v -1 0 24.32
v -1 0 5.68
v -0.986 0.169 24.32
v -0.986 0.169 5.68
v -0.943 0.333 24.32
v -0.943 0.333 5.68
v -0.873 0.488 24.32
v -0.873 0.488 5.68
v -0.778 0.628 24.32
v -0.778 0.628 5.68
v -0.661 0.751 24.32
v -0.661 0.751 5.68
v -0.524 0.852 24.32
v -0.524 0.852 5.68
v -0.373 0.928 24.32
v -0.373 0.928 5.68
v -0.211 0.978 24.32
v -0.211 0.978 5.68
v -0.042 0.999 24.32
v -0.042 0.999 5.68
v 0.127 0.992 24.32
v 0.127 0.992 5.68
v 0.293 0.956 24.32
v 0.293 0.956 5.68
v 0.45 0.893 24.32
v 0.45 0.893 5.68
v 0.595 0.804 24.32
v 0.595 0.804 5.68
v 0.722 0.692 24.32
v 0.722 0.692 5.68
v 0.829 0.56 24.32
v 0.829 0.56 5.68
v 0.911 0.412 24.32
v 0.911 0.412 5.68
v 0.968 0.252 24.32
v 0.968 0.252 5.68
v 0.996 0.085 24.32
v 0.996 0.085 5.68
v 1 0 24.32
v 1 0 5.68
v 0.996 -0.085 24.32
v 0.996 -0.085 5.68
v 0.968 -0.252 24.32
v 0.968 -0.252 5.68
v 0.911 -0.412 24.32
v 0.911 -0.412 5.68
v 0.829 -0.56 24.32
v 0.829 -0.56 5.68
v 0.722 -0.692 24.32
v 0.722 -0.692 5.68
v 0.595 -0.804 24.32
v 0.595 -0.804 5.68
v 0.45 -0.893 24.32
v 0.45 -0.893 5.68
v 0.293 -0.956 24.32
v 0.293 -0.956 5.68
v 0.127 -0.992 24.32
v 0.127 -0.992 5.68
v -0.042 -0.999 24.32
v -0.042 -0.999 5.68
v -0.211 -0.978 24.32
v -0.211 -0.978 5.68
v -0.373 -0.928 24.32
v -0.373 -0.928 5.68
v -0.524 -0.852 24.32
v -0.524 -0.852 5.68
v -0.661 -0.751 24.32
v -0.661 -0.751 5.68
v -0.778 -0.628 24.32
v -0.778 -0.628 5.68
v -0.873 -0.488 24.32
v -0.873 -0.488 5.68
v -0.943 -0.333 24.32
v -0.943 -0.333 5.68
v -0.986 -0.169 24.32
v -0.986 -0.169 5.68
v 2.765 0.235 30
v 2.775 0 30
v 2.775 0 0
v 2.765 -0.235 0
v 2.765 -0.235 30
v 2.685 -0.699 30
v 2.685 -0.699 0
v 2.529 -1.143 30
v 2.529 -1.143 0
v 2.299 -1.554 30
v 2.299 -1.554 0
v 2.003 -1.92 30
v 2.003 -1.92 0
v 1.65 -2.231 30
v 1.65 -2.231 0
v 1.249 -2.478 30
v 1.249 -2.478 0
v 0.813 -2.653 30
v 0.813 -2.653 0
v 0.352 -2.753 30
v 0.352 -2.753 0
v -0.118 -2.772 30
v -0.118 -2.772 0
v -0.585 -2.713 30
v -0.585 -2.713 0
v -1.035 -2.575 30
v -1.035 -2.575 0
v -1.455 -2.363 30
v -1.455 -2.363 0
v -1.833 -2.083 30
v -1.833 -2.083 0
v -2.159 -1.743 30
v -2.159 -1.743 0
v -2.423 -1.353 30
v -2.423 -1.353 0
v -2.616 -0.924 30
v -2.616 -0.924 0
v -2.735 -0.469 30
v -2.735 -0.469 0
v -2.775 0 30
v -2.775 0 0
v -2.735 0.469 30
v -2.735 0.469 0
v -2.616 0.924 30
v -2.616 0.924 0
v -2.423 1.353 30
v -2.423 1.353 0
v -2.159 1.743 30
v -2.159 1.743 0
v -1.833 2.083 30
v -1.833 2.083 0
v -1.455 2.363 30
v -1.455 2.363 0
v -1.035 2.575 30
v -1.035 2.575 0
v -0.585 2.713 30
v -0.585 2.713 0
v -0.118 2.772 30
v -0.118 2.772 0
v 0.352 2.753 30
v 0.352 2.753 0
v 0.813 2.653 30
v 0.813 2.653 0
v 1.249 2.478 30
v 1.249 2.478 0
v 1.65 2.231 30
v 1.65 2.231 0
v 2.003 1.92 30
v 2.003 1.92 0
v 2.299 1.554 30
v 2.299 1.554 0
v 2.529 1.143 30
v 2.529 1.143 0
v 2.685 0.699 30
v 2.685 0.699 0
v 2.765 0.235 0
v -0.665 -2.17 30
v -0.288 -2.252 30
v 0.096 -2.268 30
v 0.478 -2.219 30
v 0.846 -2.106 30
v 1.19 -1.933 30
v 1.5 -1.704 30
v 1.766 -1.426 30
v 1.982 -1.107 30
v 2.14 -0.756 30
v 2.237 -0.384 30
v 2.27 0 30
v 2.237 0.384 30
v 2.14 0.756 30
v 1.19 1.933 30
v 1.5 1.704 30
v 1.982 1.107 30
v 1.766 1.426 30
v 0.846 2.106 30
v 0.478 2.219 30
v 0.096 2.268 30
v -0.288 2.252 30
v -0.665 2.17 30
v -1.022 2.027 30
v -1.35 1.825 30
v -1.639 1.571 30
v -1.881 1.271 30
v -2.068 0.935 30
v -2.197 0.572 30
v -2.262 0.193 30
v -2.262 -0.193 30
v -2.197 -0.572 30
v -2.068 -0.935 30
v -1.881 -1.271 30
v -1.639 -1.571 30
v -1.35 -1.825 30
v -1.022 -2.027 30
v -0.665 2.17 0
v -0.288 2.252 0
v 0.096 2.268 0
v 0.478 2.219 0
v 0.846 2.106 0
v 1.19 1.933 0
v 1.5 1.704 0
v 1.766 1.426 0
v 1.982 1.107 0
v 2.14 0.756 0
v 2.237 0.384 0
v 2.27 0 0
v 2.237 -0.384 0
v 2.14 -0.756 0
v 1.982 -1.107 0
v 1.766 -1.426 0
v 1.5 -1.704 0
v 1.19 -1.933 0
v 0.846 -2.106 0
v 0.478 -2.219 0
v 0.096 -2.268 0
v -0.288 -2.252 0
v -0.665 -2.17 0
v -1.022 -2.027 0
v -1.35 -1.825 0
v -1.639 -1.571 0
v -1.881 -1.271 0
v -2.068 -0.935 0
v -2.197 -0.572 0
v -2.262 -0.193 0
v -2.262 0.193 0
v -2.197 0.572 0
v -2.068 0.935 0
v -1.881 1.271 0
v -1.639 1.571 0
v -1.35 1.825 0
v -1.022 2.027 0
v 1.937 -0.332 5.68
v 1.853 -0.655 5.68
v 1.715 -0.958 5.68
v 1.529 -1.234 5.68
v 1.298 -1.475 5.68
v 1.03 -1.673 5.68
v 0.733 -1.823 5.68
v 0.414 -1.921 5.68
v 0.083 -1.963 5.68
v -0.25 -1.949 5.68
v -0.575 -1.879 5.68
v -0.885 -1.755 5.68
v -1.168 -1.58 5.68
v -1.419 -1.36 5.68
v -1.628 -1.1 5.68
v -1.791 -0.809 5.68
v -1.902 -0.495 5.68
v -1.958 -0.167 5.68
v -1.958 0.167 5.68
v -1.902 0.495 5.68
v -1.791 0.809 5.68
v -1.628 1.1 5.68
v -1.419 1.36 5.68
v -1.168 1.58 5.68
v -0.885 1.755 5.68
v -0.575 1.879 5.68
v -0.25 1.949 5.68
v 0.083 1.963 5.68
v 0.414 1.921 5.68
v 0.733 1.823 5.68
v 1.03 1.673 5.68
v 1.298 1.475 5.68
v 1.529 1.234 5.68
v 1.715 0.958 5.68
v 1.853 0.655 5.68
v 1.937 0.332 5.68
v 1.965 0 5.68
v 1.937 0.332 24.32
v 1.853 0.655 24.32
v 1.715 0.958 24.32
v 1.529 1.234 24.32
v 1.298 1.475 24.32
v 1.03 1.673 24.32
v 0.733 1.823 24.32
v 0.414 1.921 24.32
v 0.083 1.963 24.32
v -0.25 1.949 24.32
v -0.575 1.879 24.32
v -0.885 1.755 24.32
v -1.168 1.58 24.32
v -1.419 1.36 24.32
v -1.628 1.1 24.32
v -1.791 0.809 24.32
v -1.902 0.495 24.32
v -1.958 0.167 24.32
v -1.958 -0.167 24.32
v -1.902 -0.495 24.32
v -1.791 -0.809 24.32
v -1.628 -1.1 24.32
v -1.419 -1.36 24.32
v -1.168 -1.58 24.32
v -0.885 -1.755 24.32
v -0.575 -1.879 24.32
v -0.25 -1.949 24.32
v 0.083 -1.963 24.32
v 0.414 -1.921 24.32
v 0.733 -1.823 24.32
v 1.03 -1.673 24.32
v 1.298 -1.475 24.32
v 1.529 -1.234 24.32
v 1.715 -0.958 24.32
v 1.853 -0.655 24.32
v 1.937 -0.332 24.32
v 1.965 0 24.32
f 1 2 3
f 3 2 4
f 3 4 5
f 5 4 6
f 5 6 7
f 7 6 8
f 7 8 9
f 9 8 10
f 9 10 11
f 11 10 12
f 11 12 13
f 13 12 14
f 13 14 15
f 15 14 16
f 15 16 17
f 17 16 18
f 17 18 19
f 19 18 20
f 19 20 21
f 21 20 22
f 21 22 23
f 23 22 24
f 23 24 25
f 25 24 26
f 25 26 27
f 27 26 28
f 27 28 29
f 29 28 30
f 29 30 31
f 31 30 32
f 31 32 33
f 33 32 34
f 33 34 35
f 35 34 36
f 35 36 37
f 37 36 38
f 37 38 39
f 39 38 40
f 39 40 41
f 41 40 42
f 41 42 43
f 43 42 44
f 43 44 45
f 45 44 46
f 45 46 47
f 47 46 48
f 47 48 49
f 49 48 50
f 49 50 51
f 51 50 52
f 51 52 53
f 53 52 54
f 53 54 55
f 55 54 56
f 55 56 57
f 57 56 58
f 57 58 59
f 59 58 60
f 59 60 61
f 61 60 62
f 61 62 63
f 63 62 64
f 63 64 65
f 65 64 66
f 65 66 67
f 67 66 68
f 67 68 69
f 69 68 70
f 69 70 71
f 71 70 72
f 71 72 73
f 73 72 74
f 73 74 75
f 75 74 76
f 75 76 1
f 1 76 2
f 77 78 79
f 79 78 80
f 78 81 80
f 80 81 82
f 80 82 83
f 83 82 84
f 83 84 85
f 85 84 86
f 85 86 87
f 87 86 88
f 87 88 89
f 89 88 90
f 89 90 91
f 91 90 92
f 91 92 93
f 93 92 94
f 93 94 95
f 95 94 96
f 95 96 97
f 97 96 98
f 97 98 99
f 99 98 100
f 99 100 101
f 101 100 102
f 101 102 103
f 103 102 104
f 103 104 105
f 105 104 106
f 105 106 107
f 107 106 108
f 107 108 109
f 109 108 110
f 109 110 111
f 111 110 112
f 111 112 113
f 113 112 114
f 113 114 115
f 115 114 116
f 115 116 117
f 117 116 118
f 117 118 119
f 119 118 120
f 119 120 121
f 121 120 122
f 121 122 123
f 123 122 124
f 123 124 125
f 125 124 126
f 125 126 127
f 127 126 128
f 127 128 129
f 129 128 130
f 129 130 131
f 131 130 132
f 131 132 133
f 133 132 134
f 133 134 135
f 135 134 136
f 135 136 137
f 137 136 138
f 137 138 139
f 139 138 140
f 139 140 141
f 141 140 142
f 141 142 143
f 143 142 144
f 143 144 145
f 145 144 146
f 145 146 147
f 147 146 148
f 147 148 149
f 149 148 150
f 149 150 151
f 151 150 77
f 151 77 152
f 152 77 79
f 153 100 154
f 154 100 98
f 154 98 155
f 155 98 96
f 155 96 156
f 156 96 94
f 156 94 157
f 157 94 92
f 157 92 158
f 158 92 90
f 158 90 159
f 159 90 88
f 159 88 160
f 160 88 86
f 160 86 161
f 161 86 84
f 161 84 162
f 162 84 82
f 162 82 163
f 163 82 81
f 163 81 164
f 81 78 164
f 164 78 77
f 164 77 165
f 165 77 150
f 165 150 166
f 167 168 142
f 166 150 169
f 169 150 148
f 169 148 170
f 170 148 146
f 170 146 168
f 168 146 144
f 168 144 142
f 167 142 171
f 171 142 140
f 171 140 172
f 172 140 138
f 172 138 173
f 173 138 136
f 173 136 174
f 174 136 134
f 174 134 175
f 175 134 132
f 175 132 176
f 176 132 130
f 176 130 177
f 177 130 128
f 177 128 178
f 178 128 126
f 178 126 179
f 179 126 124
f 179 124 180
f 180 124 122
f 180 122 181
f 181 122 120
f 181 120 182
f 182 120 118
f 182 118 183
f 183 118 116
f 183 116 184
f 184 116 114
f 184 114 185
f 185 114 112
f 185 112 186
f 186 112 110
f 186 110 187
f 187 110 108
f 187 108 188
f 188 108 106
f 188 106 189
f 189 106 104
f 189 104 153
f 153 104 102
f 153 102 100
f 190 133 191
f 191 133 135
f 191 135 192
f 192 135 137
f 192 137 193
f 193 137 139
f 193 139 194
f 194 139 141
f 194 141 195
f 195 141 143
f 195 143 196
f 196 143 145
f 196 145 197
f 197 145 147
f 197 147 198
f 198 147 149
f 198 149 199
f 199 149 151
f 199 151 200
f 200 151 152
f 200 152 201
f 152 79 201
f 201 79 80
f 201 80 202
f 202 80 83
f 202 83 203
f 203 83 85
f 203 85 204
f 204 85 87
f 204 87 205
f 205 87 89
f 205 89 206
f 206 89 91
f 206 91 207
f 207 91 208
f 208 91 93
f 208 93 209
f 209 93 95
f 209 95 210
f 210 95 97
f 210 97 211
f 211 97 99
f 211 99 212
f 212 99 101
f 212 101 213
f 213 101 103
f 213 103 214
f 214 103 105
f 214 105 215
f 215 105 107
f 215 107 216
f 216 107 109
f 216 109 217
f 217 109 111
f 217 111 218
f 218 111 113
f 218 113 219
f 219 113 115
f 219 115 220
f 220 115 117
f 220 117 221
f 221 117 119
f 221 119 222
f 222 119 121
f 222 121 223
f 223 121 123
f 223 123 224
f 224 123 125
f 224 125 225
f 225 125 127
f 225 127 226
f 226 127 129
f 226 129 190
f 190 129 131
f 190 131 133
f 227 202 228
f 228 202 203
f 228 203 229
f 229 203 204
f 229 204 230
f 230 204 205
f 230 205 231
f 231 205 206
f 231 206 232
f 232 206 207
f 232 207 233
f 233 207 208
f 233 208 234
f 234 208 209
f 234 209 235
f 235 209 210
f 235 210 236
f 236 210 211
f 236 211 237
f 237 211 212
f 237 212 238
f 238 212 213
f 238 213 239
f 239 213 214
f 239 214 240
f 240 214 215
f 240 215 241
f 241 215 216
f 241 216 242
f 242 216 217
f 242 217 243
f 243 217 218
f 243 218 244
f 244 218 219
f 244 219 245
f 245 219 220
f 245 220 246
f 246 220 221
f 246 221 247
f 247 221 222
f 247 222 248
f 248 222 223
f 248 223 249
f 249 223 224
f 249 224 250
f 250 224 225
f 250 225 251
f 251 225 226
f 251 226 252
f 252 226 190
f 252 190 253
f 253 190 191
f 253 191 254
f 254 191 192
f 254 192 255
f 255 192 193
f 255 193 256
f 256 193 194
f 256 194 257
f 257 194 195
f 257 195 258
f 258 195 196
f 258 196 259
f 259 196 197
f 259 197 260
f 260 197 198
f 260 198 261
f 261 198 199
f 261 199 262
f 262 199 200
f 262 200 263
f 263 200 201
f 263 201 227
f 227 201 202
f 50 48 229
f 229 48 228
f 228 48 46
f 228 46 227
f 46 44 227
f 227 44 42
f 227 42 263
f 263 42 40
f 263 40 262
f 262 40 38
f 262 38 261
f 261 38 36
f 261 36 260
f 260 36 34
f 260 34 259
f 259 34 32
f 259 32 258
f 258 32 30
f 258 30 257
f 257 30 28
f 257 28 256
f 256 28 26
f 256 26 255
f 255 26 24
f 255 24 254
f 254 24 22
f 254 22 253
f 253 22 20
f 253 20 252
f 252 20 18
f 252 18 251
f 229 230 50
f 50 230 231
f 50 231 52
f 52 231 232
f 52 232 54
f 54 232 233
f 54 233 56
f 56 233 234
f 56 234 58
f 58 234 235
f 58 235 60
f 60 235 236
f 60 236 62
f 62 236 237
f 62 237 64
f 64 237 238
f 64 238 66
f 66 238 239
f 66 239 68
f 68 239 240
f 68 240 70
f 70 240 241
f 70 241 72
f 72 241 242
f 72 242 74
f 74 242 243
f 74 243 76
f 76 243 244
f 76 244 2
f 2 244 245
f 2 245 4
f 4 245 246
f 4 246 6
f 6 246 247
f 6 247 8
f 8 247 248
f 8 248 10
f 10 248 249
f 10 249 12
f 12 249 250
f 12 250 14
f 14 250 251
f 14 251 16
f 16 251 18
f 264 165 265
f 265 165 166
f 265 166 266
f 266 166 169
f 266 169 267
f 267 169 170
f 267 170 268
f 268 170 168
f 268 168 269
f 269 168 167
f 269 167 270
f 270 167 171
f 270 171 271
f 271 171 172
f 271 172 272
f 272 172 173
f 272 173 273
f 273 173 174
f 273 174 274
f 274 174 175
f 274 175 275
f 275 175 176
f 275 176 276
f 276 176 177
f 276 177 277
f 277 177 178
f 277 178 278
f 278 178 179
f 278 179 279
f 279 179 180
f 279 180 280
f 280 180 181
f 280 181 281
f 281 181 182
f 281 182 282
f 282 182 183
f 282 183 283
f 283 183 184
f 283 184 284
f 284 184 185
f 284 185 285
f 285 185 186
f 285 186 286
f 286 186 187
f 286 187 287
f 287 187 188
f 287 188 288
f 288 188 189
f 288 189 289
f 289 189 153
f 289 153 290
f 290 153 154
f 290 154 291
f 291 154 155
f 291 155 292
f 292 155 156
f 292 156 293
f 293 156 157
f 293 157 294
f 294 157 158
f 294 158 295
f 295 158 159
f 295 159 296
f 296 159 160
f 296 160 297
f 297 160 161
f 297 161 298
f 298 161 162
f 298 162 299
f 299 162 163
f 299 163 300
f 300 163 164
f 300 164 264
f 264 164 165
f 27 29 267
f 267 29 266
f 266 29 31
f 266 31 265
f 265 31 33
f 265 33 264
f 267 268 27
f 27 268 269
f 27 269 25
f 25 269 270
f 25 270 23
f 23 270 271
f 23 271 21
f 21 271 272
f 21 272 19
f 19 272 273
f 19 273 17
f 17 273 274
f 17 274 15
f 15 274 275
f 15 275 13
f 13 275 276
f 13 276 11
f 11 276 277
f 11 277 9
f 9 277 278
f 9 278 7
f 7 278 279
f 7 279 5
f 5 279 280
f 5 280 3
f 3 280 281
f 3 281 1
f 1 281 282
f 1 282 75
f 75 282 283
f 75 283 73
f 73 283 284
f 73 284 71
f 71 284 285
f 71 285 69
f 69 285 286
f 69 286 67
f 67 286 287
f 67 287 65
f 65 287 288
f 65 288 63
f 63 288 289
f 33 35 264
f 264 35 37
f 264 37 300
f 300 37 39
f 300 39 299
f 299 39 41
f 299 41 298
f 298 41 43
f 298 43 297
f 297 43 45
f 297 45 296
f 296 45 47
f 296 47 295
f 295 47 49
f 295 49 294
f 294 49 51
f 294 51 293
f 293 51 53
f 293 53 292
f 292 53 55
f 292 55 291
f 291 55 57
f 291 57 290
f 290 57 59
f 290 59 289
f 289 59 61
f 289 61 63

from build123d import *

# Parameters (mm, degrees)
SKETCH1_R           = 2.775
BOSS_EXTRUDE1_DEPTH = 30
SKETCH2_R           = 2.27
CUT_EXTRUDE1_DEPTH  = 5.68
CUT_EXTRUDE1_TAPER  = 3.074
SKETCH7_R           = 1
CUT_EXTRUDE2_DEPTH  = 31
SKETCH9_R           = 2.27
CUT_EXTRUDE3_DEPTH  = 5.68
CUT_EXTRUDE3_TAPER  = 3.074


with BuildPart() as part:
    # Sketch1 → Boss-Extrude1 (new body)
    with BuildSketch(Plane.XY):
        Circle(SKETCH1_R)
    extrude(amount=BOSS_EXTRUDE1_DEPTH)

    # Sketch2 → Cut-Extrude1 (cut)
    with BuildSketch(Plane.XY):
        Circle(SKETCH2_R)
    extrude(amount=CUT_EXTRUDE1_DEPTH, taper=CUT_EXTRUDE1_TAPER, mode=Mode.SUBTRACT)

    # Sketch7 → Cut-Extrude2 (cut, through all)
    with BuildSketch(Plane.XY):
        Circle(SKETCH7_R)
    extrude(amount=CUT_EXTRUDE2_DEPTH, mode=Mode.SUBTRACT)

    # Sketch9 → Cut-Extrude3 (cut)
    with BuildSketch(Plane.XY.offset(30)):
        Circle(SKETCH9_R)
    extrude(amount=-CUT_EXTRUDE3_DEPTH, taper=CUT_EXTRUDE3_TAPER, mode=Mode.SUBTRACT)


solid = part.part
